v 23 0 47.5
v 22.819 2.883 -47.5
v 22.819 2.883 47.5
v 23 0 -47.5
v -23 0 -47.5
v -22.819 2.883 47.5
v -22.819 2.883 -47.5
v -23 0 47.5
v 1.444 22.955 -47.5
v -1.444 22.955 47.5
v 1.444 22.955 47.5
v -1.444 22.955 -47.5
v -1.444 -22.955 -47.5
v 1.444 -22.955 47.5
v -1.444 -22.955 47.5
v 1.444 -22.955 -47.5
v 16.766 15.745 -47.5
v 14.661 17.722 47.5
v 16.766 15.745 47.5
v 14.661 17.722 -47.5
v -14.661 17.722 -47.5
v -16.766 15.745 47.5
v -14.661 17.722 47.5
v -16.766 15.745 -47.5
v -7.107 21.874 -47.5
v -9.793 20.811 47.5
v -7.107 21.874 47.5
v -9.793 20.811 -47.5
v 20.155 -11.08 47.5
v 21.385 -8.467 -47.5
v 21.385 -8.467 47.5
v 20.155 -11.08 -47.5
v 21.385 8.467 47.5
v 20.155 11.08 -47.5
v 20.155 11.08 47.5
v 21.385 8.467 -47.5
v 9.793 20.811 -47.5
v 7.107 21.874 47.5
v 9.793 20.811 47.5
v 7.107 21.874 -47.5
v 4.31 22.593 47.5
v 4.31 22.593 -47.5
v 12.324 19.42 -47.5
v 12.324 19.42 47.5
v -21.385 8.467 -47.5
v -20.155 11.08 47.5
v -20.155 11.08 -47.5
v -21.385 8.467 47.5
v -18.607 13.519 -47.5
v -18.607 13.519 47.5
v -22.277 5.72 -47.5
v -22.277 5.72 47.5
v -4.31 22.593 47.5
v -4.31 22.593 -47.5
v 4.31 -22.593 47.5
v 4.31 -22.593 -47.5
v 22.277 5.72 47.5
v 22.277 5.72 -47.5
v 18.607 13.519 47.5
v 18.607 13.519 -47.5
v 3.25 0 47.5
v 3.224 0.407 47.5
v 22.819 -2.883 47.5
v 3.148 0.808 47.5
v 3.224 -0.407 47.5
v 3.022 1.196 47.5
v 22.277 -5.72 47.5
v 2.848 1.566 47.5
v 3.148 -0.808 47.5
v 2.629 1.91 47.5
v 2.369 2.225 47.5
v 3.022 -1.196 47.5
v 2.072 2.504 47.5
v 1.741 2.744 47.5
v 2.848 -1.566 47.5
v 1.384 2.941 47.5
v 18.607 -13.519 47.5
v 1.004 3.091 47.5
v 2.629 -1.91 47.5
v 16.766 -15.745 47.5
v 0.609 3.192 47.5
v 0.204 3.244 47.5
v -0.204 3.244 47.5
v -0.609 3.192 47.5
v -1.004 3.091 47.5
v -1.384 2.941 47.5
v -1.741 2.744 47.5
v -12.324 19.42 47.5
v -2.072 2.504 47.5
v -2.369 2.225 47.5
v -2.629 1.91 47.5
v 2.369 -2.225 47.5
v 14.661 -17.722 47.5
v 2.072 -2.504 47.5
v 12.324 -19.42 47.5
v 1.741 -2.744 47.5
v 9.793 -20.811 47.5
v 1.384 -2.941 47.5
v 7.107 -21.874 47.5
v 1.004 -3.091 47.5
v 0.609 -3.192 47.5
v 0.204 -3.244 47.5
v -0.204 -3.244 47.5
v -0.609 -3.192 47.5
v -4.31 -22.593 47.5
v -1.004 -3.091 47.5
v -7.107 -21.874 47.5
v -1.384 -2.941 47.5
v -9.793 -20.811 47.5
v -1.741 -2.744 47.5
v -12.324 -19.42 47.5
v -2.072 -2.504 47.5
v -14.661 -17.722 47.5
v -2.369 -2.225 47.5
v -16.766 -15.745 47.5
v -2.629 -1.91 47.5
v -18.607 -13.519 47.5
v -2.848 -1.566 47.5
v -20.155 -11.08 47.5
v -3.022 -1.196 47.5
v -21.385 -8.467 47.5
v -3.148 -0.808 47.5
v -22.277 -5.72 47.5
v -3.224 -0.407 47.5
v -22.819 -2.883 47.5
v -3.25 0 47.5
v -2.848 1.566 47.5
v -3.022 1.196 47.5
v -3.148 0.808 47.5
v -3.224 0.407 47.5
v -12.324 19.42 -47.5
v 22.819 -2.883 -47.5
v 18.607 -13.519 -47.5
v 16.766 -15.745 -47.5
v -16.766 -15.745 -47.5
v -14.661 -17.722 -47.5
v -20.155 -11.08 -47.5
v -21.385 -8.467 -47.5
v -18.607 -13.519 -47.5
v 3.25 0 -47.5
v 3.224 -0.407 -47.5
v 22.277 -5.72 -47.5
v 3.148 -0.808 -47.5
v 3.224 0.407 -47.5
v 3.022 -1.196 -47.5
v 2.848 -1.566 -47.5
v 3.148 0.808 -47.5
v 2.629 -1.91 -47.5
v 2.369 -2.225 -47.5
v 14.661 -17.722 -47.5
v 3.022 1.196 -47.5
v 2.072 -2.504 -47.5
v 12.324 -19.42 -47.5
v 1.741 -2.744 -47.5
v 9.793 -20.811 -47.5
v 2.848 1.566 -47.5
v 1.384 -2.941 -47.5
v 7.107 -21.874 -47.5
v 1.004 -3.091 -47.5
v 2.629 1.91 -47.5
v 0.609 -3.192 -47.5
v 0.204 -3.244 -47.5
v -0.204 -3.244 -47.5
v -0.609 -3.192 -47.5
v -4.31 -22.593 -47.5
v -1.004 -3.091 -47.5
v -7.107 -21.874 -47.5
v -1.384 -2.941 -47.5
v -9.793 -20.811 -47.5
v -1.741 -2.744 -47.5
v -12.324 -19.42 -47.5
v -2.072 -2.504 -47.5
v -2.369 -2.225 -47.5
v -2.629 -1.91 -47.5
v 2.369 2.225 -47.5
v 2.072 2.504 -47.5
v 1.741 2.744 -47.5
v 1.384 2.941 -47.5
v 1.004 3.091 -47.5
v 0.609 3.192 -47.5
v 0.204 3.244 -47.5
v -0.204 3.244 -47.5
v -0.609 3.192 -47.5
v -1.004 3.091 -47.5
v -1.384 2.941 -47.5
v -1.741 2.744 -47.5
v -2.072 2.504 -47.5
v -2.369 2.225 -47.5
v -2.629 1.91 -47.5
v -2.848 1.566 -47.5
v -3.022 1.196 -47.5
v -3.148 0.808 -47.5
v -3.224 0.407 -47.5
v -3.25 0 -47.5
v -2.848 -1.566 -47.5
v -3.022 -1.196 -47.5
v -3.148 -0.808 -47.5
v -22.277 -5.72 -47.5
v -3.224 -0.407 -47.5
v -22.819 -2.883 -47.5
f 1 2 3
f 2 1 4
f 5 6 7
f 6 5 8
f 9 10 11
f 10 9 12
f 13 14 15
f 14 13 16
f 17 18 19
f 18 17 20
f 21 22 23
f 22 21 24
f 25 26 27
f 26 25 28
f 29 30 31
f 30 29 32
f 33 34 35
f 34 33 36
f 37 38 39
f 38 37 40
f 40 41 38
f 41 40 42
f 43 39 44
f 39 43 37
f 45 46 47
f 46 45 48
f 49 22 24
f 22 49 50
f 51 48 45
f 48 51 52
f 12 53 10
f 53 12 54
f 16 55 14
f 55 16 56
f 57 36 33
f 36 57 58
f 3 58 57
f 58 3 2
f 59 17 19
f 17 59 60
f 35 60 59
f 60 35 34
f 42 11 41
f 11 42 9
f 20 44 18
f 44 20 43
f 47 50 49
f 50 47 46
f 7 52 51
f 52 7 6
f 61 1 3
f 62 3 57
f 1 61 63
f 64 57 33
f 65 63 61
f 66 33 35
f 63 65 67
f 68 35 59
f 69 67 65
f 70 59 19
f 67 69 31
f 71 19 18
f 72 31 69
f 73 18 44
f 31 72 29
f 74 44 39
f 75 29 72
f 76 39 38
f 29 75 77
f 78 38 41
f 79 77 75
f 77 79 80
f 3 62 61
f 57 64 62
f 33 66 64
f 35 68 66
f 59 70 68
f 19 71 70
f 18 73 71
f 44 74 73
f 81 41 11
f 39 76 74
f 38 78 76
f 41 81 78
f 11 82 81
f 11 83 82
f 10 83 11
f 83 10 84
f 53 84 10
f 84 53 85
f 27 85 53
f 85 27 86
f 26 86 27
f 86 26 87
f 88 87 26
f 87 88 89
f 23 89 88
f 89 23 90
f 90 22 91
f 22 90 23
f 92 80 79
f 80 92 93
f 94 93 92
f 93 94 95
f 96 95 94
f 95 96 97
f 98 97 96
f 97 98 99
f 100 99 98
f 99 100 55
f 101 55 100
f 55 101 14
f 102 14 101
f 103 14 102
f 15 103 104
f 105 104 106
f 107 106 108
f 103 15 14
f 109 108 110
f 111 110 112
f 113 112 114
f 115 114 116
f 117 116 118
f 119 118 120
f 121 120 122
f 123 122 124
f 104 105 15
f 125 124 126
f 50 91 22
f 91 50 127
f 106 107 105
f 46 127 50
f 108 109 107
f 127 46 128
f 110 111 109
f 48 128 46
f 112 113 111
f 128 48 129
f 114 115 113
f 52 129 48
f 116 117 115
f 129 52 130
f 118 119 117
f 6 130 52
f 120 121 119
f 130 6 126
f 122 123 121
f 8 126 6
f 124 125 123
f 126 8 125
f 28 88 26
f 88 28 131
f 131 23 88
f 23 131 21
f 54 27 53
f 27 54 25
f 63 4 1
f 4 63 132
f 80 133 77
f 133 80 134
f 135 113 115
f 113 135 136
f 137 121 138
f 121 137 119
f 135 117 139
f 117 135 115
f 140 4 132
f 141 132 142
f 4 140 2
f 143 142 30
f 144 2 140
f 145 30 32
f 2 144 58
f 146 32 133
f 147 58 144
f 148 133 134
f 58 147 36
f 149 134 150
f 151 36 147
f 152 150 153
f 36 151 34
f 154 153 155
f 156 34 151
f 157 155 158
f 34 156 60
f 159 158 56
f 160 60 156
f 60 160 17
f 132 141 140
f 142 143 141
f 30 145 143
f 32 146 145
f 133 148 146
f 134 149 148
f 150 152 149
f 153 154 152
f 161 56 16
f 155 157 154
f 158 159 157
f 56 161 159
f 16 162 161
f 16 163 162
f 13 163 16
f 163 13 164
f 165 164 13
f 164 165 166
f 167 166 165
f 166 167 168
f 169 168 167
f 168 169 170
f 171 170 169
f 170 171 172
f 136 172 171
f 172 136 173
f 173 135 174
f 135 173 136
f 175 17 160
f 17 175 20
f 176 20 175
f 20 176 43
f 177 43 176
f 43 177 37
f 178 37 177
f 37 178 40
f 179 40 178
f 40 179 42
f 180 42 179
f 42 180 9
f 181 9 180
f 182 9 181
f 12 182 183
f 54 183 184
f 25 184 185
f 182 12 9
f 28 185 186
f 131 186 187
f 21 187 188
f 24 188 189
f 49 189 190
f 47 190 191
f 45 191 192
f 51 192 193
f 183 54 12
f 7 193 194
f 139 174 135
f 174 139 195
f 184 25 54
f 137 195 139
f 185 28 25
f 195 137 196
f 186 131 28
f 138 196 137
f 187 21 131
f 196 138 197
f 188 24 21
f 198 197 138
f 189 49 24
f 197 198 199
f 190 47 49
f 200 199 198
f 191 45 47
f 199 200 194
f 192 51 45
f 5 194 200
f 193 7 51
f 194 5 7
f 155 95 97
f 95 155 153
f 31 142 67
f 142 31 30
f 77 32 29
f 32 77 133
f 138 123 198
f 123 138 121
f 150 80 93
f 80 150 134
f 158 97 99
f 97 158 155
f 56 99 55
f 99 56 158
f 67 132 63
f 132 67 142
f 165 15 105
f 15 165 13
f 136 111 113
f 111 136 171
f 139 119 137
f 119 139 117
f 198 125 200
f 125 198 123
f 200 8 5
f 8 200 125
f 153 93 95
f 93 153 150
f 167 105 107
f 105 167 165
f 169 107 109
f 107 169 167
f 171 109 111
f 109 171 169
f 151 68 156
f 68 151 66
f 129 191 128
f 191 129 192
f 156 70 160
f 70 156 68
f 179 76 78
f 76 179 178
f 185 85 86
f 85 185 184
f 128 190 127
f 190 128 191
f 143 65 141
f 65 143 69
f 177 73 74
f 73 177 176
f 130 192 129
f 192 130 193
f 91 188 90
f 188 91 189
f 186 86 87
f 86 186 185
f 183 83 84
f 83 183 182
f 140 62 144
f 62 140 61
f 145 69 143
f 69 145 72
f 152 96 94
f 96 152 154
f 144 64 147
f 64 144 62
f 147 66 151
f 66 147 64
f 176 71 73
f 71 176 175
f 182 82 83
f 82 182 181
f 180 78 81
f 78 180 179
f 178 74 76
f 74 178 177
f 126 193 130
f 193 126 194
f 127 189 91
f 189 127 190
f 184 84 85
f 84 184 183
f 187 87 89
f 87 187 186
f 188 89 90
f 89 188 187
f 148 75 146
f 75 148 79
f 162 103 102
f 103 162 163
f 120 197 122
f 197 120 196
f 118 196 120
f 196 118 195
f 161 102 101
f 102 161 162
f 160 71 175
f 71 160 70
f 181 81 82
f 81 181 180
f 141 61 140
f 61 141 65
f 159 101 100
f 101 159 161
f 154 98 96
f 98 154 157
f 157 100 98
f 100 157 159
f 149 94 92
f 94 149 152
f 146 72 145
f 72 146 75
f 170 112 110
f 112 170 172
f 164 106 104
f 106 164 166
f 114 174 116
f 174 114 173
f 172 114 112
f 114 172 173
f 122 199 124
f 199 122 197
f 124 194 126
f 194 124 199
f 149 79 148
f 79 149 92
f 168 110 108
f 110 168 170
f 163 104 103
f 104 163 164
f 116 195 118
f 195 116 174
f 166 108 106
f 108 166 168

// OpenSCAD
$fn = 50;


difference() {
	union() {
		translate(v = [0, 0, -47.5000000000]) {
			cylinder(h = 95, r = 23.0000000000);
		}
	}
	union() {
		translate(v = [0, 0, -100.0000000000]) {
			cylinder(h = 200, r = 3.2500000000);
		}
	}
}
